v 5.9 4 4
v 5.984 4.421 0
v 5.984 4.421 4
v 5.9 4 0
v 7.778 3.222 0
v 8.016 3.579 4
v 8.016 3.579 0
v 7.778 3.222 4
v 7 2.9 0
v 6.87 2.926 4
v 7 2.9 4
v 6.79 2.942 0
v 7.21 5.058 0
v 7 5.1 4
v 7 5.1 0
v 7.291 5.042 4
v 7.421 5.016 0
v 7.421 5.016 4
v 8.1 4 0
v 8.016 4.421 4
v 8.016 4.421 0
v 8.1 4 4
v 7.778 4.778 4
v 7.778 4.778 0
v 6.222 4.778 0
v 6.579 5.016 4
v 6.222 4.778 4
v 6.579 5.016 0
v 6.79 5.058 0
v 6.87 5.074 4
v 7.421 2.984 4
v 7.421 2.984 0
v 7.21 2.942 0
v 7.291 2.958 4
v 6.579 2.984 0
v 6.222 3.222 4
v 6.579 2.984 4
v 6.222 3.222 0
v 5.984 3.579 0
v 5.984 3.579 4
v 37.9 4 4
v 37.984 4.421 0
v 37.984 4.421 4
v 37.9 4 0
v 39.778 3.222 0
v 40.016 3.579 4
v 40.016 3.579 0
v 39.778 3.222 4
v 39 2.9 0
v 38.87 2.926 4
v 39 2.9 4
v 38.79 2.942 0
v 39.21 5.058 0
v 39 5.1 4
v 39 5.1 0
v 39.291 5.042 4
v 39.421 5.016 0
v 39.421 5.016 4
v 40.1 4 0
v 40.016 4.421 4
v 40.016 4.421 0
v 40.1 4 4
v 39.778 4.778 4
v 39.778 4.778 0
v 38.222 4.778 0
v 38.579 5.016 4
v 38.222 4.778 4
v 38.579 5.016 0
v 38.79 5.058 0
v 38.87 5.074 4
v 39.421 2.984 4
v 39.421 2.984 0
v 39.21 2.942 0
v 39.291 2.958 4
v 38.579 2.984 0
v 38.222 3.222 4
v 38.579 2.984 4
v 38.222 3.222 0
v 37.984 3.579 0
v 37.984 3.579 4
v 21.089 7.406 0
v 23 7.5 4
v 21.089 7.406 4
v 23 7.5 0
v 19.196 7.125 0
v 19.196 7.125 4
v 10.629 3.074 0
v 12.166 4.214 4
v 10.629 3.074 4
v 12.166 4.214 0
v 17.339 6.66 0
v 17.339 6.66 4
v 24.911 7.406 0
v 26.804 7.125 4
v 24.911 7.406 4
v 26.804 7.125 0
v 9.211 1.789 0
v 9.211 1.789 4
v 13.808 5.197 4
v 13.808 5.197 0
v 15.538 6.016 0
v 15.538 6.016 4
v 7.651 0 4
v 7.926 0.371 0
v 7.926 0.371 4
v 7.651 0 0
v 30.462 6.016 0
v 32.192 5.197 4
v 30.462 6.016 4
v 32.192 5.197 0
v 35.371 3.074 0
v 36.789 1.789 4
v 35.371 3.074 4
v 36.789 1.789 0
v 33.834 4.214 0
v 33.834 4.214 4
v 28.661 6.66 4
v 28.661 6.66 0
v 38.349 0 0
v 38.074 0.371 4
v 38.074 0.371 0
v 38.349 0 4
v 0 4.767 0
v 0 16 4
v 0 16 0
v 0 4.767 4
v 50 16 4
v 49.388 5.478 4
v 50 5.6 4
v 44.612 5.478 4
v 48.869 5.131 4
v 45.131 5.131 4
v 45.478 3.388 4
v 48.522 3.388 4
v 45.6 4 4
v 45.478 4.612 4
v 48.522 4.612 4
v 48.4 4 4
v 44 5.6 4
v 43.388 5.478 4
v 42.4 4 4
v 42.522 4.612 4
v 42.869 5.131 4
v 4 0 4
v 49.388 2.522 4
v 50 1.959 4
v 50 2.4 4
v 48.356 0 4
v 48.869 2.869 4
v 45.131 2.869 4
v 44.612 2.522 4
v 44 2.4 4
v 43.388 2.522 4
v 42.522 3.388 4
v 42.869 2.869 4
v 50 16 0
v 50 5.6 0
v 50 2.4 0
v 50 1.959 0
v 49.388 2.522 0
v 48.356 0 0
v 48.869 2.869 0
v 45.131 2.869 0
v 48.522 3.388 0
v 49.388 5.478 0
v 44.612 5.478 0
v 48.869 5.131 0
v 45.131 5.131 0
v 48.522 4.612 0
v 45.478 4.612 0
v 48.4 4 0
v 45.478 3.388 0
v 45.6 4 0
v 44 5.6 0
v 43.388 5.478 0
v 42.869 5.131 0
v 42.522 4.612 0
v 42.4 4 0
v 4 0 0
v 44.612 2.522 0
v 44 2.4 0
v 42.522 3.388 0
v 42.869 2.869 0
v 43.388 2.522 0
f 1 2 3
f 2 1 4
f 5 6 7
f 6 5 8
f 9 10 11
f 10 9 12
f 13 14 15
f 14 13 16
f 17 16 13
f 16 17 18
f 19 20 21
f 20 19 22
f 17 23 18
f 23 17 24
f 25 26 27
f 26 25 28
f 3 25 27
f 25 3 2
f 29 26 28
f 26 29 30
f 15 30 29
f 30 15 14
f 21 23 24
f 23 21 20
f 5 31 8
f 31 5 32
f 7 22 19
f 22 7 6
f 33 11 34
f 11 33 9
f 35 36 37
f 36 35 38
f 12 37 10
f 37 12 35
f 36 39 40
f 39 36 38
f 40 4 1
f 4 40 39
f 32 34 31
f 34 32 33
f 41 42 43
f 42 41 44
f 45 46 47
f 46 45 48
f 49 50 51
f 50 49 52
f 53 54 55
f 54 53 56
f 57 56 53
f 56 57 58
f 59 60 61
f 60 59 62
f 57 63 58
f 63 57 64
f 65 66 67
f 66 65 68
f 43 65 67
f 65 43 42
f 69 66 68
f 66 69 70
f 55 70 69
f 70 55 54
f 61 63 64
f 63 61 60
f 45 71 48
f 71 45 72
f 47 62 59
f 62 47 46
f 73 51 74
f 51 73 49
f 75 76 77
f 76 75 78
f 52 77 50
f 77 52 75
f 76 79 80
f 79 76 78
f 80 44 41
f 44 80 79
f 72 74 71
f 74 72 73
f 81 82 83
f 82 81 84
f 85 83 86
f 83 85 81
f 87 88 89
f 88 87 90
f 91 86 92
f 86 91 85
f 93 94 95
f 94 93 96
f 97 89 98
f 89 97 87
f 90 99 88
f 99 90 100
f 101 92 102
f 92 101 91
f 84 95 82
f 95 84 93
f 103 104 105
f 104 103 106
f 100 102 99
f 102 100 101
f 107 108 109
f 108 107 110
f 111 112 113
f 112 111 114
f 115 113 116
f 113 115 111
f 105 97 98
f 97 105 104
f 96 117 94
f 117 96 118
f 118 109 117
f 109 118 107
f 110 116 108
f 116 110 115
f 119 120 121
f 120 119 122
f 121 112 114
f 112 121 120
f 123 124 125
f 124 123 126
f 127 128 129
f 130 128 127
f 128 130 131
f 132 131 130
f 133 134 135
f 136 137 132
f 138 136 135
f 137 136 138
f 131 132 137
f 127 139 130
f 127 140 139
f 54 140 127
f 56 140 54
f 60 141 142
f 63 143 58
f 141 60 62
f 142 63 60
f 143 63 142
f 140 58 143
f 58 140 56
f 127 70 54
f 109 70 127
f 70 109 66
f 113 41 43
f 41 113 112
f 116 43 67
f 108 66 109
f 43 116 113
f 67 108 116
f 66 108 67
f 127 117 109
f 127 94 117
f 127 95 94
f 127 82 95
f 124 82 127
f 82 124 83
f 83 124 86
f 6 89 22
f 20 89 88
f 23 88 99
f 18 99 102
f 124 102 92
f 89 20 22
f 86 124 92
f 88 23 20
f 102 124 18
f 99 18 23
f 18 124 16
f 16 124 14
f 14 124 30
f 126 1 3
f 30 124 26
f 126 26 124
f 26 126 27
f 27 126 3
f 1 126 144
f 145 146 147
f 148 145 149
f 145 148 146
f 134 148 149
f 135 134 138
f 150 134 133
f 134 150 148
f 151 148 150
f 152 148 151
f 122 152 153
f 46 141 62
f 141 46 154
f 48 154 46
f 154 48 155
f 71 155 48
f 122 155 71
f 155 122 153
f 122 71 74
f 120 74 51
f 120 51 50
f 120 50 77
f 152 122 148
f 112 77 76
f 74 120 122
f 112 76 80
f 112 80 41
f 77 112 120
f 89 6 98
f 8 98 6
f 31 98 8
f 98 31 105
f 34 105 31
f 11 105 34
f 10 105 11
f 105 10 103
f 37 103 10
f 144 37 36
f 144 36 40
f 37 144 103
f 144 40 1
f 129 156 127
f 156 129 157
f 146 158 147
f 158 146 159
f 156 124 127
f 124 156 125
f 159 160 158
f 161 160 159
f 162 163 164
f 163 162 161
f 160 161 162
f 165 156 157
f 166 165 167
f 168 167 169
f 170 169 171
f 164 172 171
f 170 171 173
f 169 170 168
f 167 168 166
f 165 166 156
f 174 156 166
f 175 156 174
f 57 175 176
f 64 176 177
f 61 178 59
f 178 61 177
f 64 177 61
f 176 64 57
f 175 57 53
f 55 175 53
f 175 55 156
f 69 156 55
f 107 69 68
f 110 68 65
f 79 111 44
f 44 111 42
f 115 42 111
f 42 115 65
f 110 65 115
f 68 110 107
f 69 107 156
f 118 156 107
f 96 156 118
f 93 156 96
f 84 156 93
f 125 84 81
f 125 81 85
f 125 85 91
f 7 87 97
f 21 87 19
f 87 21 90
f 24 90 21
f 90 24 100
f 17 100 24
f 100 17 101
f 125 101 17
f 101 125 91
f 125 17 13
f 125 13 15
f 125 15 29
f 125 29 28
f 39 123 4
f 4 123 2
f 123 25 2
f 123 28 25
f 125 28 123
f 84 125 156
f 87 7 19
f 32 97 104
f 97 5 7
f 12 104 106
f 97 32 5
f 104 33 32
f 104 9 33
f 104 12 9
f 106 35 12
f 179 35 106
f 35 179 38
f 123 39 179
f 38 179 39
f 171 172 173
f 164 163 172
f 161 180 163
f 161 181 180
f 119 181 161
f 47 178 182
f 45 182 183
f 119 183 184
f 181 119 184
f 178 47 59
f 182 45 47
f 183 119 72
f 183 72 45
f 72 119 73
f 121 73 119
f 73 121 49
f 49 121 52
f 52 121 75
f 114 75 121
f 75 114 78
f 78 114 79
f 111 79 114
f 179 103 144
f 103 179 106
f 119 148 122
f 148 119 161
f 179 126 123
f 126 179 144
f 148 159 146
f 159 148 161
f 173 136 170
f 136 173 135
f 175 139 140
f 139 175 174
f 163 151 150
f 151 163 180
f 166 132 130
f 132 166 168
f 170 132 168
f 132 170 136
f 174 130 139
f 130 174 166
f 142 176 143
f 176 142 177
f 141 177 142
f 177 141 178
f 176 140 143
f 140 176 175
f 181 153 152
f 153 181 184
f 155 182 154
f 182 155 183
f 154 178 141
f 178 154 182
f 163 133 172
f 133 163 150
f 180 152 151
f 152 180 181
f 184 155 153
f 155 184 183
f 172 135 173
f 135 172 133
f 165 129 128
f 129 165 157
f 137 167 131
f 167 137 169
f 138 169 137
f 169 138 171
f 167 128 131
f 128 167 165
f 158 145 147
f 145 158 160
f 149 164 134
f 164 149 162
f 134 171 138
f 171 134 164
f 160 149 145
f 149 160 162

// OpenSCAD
// file: ../../../configuration.scad
/*
	Konfiguracni soubor 3D tiskarny RebeliX X2
	
	Sledujte nas na:		  
			www.RepRap4U.cz
			www.facebook.com/RebeliX.cz
			https://twitter.com/reprap4u
			https://plus.google.com/+Reprap4uCz-3Dtiskarna-RebeliX
*/

/*================ Slic3r nastaveni ==========================*/

// Vyska vrstvy pro tisknuti dilu [mm]
layer_height = 0.3;

// Sirka vytlacovaneho materialu [mm]
extrusion_width = 0.66; //Slic3r->Print Settings->Advanced->Default extrusion width

/*==================== M6 sroub ==============================*/

// Rezerva prumeru hlavy sroubu [mm]
space = 1;

// Prumer hlavy M6 sroubu (pricte se rezerva) [mm]
M6_head_diameter = 10.6+space;
//M6_head_diameter = 12+space;

// Vyska hlavy M6 sroubu (dulezite pro zapusteni hlavy sroubu do plastu) [mm]
M6_head_height = 3.6;
//M6_head_height = 4.5;

// Delka sroubu M6 [mm]
// M6x12
M6_lenght = 12;

/*=================== Nastaveni dilu =========================*/

// Posun Z zakladny
z_base_offset = 11;

// Tloustka rohovych spojek
// 5 mm => sroub M6x14 s podlozkou
// 3 mm => sroub M6x12 s podlozkou
coupler_thickness = 5;

// Prumer 8mm tyce
rod_8mm_d = 8.2;

// Posun drzacku mezi x-motor a x-end
x_holder_position = 6.5;

/*======================== Motory ============================*/

// Delka motoru (ovlivni dily a delky tyci pro osy Z a Y)
//SX17-1003LQFE (doporuceno hlavne na osu Z)
motor_length = 29.5;
//SX17-1003 (doporuceno hlavne na osu Z), SX17-0503LQEF
//motor_length = 34;
//SX17-1005
//motor_length = 40;
//SX17-0905 - zde je jiz problem s velkou vyskou motoru na ose Z - musi se upravit endstop-holder
//motor_length = 48;

/*================ Remeny a remenicky ========================*/

// GT2 
belt_tooth_distance = 2;
belt_tooth_ratio = 0.5;

// T2.5
//belt_tooth_distance = 2.5;
//belt_tooth_ratio = 0.68;
// main file
// RebeliX
//
// Drzak LED pasku na 40mm ventilator
// GNU GPL v3
// Martin Neruda <neruda@reprap4u.cz>
// http://www.reprap4u.cz

include <../../../configuration.scad>


module fan_40mm(){
	// 40 mm ventilator
	translate([0,0,-32/2]) rotate([0,90,0]) cylinder(r=1.1,h=21,$fn=16,center=true);
	translate([0,0,32/2]) rotate([0,90,0]) cylinder(r=1.1,h=21,$fn=16,center=true);
	translate([0,-32/2,0]) rotate([0,90,0]) cylinder(r=39/2,h=21,$fn=64,center=true);
}

module LED_holder(){
  difference(){
    union(){
	  cube([50,16,4]);
	
	}
    translate([50/2 - 2,4,0]) rotate([0,90,0]) fan_40mm();
	// Seriznuti hran
	translate([4,0,-0.1]) rotate([0,0,130]) cube([10,10,10]);
	translate([45,-4,-0.1]) rotate([0,0,-40]) cube([10,10,10]);
	// Otvor pro Zip pasku
	translate([44,4,0]) cylinder(r=1.6,h=10,$fn=16,center=true);
	translate([50,4,0]) cylinder(r=1.6,h=10,$fn=16,center=true);
	
  }
}

LED_holder();
